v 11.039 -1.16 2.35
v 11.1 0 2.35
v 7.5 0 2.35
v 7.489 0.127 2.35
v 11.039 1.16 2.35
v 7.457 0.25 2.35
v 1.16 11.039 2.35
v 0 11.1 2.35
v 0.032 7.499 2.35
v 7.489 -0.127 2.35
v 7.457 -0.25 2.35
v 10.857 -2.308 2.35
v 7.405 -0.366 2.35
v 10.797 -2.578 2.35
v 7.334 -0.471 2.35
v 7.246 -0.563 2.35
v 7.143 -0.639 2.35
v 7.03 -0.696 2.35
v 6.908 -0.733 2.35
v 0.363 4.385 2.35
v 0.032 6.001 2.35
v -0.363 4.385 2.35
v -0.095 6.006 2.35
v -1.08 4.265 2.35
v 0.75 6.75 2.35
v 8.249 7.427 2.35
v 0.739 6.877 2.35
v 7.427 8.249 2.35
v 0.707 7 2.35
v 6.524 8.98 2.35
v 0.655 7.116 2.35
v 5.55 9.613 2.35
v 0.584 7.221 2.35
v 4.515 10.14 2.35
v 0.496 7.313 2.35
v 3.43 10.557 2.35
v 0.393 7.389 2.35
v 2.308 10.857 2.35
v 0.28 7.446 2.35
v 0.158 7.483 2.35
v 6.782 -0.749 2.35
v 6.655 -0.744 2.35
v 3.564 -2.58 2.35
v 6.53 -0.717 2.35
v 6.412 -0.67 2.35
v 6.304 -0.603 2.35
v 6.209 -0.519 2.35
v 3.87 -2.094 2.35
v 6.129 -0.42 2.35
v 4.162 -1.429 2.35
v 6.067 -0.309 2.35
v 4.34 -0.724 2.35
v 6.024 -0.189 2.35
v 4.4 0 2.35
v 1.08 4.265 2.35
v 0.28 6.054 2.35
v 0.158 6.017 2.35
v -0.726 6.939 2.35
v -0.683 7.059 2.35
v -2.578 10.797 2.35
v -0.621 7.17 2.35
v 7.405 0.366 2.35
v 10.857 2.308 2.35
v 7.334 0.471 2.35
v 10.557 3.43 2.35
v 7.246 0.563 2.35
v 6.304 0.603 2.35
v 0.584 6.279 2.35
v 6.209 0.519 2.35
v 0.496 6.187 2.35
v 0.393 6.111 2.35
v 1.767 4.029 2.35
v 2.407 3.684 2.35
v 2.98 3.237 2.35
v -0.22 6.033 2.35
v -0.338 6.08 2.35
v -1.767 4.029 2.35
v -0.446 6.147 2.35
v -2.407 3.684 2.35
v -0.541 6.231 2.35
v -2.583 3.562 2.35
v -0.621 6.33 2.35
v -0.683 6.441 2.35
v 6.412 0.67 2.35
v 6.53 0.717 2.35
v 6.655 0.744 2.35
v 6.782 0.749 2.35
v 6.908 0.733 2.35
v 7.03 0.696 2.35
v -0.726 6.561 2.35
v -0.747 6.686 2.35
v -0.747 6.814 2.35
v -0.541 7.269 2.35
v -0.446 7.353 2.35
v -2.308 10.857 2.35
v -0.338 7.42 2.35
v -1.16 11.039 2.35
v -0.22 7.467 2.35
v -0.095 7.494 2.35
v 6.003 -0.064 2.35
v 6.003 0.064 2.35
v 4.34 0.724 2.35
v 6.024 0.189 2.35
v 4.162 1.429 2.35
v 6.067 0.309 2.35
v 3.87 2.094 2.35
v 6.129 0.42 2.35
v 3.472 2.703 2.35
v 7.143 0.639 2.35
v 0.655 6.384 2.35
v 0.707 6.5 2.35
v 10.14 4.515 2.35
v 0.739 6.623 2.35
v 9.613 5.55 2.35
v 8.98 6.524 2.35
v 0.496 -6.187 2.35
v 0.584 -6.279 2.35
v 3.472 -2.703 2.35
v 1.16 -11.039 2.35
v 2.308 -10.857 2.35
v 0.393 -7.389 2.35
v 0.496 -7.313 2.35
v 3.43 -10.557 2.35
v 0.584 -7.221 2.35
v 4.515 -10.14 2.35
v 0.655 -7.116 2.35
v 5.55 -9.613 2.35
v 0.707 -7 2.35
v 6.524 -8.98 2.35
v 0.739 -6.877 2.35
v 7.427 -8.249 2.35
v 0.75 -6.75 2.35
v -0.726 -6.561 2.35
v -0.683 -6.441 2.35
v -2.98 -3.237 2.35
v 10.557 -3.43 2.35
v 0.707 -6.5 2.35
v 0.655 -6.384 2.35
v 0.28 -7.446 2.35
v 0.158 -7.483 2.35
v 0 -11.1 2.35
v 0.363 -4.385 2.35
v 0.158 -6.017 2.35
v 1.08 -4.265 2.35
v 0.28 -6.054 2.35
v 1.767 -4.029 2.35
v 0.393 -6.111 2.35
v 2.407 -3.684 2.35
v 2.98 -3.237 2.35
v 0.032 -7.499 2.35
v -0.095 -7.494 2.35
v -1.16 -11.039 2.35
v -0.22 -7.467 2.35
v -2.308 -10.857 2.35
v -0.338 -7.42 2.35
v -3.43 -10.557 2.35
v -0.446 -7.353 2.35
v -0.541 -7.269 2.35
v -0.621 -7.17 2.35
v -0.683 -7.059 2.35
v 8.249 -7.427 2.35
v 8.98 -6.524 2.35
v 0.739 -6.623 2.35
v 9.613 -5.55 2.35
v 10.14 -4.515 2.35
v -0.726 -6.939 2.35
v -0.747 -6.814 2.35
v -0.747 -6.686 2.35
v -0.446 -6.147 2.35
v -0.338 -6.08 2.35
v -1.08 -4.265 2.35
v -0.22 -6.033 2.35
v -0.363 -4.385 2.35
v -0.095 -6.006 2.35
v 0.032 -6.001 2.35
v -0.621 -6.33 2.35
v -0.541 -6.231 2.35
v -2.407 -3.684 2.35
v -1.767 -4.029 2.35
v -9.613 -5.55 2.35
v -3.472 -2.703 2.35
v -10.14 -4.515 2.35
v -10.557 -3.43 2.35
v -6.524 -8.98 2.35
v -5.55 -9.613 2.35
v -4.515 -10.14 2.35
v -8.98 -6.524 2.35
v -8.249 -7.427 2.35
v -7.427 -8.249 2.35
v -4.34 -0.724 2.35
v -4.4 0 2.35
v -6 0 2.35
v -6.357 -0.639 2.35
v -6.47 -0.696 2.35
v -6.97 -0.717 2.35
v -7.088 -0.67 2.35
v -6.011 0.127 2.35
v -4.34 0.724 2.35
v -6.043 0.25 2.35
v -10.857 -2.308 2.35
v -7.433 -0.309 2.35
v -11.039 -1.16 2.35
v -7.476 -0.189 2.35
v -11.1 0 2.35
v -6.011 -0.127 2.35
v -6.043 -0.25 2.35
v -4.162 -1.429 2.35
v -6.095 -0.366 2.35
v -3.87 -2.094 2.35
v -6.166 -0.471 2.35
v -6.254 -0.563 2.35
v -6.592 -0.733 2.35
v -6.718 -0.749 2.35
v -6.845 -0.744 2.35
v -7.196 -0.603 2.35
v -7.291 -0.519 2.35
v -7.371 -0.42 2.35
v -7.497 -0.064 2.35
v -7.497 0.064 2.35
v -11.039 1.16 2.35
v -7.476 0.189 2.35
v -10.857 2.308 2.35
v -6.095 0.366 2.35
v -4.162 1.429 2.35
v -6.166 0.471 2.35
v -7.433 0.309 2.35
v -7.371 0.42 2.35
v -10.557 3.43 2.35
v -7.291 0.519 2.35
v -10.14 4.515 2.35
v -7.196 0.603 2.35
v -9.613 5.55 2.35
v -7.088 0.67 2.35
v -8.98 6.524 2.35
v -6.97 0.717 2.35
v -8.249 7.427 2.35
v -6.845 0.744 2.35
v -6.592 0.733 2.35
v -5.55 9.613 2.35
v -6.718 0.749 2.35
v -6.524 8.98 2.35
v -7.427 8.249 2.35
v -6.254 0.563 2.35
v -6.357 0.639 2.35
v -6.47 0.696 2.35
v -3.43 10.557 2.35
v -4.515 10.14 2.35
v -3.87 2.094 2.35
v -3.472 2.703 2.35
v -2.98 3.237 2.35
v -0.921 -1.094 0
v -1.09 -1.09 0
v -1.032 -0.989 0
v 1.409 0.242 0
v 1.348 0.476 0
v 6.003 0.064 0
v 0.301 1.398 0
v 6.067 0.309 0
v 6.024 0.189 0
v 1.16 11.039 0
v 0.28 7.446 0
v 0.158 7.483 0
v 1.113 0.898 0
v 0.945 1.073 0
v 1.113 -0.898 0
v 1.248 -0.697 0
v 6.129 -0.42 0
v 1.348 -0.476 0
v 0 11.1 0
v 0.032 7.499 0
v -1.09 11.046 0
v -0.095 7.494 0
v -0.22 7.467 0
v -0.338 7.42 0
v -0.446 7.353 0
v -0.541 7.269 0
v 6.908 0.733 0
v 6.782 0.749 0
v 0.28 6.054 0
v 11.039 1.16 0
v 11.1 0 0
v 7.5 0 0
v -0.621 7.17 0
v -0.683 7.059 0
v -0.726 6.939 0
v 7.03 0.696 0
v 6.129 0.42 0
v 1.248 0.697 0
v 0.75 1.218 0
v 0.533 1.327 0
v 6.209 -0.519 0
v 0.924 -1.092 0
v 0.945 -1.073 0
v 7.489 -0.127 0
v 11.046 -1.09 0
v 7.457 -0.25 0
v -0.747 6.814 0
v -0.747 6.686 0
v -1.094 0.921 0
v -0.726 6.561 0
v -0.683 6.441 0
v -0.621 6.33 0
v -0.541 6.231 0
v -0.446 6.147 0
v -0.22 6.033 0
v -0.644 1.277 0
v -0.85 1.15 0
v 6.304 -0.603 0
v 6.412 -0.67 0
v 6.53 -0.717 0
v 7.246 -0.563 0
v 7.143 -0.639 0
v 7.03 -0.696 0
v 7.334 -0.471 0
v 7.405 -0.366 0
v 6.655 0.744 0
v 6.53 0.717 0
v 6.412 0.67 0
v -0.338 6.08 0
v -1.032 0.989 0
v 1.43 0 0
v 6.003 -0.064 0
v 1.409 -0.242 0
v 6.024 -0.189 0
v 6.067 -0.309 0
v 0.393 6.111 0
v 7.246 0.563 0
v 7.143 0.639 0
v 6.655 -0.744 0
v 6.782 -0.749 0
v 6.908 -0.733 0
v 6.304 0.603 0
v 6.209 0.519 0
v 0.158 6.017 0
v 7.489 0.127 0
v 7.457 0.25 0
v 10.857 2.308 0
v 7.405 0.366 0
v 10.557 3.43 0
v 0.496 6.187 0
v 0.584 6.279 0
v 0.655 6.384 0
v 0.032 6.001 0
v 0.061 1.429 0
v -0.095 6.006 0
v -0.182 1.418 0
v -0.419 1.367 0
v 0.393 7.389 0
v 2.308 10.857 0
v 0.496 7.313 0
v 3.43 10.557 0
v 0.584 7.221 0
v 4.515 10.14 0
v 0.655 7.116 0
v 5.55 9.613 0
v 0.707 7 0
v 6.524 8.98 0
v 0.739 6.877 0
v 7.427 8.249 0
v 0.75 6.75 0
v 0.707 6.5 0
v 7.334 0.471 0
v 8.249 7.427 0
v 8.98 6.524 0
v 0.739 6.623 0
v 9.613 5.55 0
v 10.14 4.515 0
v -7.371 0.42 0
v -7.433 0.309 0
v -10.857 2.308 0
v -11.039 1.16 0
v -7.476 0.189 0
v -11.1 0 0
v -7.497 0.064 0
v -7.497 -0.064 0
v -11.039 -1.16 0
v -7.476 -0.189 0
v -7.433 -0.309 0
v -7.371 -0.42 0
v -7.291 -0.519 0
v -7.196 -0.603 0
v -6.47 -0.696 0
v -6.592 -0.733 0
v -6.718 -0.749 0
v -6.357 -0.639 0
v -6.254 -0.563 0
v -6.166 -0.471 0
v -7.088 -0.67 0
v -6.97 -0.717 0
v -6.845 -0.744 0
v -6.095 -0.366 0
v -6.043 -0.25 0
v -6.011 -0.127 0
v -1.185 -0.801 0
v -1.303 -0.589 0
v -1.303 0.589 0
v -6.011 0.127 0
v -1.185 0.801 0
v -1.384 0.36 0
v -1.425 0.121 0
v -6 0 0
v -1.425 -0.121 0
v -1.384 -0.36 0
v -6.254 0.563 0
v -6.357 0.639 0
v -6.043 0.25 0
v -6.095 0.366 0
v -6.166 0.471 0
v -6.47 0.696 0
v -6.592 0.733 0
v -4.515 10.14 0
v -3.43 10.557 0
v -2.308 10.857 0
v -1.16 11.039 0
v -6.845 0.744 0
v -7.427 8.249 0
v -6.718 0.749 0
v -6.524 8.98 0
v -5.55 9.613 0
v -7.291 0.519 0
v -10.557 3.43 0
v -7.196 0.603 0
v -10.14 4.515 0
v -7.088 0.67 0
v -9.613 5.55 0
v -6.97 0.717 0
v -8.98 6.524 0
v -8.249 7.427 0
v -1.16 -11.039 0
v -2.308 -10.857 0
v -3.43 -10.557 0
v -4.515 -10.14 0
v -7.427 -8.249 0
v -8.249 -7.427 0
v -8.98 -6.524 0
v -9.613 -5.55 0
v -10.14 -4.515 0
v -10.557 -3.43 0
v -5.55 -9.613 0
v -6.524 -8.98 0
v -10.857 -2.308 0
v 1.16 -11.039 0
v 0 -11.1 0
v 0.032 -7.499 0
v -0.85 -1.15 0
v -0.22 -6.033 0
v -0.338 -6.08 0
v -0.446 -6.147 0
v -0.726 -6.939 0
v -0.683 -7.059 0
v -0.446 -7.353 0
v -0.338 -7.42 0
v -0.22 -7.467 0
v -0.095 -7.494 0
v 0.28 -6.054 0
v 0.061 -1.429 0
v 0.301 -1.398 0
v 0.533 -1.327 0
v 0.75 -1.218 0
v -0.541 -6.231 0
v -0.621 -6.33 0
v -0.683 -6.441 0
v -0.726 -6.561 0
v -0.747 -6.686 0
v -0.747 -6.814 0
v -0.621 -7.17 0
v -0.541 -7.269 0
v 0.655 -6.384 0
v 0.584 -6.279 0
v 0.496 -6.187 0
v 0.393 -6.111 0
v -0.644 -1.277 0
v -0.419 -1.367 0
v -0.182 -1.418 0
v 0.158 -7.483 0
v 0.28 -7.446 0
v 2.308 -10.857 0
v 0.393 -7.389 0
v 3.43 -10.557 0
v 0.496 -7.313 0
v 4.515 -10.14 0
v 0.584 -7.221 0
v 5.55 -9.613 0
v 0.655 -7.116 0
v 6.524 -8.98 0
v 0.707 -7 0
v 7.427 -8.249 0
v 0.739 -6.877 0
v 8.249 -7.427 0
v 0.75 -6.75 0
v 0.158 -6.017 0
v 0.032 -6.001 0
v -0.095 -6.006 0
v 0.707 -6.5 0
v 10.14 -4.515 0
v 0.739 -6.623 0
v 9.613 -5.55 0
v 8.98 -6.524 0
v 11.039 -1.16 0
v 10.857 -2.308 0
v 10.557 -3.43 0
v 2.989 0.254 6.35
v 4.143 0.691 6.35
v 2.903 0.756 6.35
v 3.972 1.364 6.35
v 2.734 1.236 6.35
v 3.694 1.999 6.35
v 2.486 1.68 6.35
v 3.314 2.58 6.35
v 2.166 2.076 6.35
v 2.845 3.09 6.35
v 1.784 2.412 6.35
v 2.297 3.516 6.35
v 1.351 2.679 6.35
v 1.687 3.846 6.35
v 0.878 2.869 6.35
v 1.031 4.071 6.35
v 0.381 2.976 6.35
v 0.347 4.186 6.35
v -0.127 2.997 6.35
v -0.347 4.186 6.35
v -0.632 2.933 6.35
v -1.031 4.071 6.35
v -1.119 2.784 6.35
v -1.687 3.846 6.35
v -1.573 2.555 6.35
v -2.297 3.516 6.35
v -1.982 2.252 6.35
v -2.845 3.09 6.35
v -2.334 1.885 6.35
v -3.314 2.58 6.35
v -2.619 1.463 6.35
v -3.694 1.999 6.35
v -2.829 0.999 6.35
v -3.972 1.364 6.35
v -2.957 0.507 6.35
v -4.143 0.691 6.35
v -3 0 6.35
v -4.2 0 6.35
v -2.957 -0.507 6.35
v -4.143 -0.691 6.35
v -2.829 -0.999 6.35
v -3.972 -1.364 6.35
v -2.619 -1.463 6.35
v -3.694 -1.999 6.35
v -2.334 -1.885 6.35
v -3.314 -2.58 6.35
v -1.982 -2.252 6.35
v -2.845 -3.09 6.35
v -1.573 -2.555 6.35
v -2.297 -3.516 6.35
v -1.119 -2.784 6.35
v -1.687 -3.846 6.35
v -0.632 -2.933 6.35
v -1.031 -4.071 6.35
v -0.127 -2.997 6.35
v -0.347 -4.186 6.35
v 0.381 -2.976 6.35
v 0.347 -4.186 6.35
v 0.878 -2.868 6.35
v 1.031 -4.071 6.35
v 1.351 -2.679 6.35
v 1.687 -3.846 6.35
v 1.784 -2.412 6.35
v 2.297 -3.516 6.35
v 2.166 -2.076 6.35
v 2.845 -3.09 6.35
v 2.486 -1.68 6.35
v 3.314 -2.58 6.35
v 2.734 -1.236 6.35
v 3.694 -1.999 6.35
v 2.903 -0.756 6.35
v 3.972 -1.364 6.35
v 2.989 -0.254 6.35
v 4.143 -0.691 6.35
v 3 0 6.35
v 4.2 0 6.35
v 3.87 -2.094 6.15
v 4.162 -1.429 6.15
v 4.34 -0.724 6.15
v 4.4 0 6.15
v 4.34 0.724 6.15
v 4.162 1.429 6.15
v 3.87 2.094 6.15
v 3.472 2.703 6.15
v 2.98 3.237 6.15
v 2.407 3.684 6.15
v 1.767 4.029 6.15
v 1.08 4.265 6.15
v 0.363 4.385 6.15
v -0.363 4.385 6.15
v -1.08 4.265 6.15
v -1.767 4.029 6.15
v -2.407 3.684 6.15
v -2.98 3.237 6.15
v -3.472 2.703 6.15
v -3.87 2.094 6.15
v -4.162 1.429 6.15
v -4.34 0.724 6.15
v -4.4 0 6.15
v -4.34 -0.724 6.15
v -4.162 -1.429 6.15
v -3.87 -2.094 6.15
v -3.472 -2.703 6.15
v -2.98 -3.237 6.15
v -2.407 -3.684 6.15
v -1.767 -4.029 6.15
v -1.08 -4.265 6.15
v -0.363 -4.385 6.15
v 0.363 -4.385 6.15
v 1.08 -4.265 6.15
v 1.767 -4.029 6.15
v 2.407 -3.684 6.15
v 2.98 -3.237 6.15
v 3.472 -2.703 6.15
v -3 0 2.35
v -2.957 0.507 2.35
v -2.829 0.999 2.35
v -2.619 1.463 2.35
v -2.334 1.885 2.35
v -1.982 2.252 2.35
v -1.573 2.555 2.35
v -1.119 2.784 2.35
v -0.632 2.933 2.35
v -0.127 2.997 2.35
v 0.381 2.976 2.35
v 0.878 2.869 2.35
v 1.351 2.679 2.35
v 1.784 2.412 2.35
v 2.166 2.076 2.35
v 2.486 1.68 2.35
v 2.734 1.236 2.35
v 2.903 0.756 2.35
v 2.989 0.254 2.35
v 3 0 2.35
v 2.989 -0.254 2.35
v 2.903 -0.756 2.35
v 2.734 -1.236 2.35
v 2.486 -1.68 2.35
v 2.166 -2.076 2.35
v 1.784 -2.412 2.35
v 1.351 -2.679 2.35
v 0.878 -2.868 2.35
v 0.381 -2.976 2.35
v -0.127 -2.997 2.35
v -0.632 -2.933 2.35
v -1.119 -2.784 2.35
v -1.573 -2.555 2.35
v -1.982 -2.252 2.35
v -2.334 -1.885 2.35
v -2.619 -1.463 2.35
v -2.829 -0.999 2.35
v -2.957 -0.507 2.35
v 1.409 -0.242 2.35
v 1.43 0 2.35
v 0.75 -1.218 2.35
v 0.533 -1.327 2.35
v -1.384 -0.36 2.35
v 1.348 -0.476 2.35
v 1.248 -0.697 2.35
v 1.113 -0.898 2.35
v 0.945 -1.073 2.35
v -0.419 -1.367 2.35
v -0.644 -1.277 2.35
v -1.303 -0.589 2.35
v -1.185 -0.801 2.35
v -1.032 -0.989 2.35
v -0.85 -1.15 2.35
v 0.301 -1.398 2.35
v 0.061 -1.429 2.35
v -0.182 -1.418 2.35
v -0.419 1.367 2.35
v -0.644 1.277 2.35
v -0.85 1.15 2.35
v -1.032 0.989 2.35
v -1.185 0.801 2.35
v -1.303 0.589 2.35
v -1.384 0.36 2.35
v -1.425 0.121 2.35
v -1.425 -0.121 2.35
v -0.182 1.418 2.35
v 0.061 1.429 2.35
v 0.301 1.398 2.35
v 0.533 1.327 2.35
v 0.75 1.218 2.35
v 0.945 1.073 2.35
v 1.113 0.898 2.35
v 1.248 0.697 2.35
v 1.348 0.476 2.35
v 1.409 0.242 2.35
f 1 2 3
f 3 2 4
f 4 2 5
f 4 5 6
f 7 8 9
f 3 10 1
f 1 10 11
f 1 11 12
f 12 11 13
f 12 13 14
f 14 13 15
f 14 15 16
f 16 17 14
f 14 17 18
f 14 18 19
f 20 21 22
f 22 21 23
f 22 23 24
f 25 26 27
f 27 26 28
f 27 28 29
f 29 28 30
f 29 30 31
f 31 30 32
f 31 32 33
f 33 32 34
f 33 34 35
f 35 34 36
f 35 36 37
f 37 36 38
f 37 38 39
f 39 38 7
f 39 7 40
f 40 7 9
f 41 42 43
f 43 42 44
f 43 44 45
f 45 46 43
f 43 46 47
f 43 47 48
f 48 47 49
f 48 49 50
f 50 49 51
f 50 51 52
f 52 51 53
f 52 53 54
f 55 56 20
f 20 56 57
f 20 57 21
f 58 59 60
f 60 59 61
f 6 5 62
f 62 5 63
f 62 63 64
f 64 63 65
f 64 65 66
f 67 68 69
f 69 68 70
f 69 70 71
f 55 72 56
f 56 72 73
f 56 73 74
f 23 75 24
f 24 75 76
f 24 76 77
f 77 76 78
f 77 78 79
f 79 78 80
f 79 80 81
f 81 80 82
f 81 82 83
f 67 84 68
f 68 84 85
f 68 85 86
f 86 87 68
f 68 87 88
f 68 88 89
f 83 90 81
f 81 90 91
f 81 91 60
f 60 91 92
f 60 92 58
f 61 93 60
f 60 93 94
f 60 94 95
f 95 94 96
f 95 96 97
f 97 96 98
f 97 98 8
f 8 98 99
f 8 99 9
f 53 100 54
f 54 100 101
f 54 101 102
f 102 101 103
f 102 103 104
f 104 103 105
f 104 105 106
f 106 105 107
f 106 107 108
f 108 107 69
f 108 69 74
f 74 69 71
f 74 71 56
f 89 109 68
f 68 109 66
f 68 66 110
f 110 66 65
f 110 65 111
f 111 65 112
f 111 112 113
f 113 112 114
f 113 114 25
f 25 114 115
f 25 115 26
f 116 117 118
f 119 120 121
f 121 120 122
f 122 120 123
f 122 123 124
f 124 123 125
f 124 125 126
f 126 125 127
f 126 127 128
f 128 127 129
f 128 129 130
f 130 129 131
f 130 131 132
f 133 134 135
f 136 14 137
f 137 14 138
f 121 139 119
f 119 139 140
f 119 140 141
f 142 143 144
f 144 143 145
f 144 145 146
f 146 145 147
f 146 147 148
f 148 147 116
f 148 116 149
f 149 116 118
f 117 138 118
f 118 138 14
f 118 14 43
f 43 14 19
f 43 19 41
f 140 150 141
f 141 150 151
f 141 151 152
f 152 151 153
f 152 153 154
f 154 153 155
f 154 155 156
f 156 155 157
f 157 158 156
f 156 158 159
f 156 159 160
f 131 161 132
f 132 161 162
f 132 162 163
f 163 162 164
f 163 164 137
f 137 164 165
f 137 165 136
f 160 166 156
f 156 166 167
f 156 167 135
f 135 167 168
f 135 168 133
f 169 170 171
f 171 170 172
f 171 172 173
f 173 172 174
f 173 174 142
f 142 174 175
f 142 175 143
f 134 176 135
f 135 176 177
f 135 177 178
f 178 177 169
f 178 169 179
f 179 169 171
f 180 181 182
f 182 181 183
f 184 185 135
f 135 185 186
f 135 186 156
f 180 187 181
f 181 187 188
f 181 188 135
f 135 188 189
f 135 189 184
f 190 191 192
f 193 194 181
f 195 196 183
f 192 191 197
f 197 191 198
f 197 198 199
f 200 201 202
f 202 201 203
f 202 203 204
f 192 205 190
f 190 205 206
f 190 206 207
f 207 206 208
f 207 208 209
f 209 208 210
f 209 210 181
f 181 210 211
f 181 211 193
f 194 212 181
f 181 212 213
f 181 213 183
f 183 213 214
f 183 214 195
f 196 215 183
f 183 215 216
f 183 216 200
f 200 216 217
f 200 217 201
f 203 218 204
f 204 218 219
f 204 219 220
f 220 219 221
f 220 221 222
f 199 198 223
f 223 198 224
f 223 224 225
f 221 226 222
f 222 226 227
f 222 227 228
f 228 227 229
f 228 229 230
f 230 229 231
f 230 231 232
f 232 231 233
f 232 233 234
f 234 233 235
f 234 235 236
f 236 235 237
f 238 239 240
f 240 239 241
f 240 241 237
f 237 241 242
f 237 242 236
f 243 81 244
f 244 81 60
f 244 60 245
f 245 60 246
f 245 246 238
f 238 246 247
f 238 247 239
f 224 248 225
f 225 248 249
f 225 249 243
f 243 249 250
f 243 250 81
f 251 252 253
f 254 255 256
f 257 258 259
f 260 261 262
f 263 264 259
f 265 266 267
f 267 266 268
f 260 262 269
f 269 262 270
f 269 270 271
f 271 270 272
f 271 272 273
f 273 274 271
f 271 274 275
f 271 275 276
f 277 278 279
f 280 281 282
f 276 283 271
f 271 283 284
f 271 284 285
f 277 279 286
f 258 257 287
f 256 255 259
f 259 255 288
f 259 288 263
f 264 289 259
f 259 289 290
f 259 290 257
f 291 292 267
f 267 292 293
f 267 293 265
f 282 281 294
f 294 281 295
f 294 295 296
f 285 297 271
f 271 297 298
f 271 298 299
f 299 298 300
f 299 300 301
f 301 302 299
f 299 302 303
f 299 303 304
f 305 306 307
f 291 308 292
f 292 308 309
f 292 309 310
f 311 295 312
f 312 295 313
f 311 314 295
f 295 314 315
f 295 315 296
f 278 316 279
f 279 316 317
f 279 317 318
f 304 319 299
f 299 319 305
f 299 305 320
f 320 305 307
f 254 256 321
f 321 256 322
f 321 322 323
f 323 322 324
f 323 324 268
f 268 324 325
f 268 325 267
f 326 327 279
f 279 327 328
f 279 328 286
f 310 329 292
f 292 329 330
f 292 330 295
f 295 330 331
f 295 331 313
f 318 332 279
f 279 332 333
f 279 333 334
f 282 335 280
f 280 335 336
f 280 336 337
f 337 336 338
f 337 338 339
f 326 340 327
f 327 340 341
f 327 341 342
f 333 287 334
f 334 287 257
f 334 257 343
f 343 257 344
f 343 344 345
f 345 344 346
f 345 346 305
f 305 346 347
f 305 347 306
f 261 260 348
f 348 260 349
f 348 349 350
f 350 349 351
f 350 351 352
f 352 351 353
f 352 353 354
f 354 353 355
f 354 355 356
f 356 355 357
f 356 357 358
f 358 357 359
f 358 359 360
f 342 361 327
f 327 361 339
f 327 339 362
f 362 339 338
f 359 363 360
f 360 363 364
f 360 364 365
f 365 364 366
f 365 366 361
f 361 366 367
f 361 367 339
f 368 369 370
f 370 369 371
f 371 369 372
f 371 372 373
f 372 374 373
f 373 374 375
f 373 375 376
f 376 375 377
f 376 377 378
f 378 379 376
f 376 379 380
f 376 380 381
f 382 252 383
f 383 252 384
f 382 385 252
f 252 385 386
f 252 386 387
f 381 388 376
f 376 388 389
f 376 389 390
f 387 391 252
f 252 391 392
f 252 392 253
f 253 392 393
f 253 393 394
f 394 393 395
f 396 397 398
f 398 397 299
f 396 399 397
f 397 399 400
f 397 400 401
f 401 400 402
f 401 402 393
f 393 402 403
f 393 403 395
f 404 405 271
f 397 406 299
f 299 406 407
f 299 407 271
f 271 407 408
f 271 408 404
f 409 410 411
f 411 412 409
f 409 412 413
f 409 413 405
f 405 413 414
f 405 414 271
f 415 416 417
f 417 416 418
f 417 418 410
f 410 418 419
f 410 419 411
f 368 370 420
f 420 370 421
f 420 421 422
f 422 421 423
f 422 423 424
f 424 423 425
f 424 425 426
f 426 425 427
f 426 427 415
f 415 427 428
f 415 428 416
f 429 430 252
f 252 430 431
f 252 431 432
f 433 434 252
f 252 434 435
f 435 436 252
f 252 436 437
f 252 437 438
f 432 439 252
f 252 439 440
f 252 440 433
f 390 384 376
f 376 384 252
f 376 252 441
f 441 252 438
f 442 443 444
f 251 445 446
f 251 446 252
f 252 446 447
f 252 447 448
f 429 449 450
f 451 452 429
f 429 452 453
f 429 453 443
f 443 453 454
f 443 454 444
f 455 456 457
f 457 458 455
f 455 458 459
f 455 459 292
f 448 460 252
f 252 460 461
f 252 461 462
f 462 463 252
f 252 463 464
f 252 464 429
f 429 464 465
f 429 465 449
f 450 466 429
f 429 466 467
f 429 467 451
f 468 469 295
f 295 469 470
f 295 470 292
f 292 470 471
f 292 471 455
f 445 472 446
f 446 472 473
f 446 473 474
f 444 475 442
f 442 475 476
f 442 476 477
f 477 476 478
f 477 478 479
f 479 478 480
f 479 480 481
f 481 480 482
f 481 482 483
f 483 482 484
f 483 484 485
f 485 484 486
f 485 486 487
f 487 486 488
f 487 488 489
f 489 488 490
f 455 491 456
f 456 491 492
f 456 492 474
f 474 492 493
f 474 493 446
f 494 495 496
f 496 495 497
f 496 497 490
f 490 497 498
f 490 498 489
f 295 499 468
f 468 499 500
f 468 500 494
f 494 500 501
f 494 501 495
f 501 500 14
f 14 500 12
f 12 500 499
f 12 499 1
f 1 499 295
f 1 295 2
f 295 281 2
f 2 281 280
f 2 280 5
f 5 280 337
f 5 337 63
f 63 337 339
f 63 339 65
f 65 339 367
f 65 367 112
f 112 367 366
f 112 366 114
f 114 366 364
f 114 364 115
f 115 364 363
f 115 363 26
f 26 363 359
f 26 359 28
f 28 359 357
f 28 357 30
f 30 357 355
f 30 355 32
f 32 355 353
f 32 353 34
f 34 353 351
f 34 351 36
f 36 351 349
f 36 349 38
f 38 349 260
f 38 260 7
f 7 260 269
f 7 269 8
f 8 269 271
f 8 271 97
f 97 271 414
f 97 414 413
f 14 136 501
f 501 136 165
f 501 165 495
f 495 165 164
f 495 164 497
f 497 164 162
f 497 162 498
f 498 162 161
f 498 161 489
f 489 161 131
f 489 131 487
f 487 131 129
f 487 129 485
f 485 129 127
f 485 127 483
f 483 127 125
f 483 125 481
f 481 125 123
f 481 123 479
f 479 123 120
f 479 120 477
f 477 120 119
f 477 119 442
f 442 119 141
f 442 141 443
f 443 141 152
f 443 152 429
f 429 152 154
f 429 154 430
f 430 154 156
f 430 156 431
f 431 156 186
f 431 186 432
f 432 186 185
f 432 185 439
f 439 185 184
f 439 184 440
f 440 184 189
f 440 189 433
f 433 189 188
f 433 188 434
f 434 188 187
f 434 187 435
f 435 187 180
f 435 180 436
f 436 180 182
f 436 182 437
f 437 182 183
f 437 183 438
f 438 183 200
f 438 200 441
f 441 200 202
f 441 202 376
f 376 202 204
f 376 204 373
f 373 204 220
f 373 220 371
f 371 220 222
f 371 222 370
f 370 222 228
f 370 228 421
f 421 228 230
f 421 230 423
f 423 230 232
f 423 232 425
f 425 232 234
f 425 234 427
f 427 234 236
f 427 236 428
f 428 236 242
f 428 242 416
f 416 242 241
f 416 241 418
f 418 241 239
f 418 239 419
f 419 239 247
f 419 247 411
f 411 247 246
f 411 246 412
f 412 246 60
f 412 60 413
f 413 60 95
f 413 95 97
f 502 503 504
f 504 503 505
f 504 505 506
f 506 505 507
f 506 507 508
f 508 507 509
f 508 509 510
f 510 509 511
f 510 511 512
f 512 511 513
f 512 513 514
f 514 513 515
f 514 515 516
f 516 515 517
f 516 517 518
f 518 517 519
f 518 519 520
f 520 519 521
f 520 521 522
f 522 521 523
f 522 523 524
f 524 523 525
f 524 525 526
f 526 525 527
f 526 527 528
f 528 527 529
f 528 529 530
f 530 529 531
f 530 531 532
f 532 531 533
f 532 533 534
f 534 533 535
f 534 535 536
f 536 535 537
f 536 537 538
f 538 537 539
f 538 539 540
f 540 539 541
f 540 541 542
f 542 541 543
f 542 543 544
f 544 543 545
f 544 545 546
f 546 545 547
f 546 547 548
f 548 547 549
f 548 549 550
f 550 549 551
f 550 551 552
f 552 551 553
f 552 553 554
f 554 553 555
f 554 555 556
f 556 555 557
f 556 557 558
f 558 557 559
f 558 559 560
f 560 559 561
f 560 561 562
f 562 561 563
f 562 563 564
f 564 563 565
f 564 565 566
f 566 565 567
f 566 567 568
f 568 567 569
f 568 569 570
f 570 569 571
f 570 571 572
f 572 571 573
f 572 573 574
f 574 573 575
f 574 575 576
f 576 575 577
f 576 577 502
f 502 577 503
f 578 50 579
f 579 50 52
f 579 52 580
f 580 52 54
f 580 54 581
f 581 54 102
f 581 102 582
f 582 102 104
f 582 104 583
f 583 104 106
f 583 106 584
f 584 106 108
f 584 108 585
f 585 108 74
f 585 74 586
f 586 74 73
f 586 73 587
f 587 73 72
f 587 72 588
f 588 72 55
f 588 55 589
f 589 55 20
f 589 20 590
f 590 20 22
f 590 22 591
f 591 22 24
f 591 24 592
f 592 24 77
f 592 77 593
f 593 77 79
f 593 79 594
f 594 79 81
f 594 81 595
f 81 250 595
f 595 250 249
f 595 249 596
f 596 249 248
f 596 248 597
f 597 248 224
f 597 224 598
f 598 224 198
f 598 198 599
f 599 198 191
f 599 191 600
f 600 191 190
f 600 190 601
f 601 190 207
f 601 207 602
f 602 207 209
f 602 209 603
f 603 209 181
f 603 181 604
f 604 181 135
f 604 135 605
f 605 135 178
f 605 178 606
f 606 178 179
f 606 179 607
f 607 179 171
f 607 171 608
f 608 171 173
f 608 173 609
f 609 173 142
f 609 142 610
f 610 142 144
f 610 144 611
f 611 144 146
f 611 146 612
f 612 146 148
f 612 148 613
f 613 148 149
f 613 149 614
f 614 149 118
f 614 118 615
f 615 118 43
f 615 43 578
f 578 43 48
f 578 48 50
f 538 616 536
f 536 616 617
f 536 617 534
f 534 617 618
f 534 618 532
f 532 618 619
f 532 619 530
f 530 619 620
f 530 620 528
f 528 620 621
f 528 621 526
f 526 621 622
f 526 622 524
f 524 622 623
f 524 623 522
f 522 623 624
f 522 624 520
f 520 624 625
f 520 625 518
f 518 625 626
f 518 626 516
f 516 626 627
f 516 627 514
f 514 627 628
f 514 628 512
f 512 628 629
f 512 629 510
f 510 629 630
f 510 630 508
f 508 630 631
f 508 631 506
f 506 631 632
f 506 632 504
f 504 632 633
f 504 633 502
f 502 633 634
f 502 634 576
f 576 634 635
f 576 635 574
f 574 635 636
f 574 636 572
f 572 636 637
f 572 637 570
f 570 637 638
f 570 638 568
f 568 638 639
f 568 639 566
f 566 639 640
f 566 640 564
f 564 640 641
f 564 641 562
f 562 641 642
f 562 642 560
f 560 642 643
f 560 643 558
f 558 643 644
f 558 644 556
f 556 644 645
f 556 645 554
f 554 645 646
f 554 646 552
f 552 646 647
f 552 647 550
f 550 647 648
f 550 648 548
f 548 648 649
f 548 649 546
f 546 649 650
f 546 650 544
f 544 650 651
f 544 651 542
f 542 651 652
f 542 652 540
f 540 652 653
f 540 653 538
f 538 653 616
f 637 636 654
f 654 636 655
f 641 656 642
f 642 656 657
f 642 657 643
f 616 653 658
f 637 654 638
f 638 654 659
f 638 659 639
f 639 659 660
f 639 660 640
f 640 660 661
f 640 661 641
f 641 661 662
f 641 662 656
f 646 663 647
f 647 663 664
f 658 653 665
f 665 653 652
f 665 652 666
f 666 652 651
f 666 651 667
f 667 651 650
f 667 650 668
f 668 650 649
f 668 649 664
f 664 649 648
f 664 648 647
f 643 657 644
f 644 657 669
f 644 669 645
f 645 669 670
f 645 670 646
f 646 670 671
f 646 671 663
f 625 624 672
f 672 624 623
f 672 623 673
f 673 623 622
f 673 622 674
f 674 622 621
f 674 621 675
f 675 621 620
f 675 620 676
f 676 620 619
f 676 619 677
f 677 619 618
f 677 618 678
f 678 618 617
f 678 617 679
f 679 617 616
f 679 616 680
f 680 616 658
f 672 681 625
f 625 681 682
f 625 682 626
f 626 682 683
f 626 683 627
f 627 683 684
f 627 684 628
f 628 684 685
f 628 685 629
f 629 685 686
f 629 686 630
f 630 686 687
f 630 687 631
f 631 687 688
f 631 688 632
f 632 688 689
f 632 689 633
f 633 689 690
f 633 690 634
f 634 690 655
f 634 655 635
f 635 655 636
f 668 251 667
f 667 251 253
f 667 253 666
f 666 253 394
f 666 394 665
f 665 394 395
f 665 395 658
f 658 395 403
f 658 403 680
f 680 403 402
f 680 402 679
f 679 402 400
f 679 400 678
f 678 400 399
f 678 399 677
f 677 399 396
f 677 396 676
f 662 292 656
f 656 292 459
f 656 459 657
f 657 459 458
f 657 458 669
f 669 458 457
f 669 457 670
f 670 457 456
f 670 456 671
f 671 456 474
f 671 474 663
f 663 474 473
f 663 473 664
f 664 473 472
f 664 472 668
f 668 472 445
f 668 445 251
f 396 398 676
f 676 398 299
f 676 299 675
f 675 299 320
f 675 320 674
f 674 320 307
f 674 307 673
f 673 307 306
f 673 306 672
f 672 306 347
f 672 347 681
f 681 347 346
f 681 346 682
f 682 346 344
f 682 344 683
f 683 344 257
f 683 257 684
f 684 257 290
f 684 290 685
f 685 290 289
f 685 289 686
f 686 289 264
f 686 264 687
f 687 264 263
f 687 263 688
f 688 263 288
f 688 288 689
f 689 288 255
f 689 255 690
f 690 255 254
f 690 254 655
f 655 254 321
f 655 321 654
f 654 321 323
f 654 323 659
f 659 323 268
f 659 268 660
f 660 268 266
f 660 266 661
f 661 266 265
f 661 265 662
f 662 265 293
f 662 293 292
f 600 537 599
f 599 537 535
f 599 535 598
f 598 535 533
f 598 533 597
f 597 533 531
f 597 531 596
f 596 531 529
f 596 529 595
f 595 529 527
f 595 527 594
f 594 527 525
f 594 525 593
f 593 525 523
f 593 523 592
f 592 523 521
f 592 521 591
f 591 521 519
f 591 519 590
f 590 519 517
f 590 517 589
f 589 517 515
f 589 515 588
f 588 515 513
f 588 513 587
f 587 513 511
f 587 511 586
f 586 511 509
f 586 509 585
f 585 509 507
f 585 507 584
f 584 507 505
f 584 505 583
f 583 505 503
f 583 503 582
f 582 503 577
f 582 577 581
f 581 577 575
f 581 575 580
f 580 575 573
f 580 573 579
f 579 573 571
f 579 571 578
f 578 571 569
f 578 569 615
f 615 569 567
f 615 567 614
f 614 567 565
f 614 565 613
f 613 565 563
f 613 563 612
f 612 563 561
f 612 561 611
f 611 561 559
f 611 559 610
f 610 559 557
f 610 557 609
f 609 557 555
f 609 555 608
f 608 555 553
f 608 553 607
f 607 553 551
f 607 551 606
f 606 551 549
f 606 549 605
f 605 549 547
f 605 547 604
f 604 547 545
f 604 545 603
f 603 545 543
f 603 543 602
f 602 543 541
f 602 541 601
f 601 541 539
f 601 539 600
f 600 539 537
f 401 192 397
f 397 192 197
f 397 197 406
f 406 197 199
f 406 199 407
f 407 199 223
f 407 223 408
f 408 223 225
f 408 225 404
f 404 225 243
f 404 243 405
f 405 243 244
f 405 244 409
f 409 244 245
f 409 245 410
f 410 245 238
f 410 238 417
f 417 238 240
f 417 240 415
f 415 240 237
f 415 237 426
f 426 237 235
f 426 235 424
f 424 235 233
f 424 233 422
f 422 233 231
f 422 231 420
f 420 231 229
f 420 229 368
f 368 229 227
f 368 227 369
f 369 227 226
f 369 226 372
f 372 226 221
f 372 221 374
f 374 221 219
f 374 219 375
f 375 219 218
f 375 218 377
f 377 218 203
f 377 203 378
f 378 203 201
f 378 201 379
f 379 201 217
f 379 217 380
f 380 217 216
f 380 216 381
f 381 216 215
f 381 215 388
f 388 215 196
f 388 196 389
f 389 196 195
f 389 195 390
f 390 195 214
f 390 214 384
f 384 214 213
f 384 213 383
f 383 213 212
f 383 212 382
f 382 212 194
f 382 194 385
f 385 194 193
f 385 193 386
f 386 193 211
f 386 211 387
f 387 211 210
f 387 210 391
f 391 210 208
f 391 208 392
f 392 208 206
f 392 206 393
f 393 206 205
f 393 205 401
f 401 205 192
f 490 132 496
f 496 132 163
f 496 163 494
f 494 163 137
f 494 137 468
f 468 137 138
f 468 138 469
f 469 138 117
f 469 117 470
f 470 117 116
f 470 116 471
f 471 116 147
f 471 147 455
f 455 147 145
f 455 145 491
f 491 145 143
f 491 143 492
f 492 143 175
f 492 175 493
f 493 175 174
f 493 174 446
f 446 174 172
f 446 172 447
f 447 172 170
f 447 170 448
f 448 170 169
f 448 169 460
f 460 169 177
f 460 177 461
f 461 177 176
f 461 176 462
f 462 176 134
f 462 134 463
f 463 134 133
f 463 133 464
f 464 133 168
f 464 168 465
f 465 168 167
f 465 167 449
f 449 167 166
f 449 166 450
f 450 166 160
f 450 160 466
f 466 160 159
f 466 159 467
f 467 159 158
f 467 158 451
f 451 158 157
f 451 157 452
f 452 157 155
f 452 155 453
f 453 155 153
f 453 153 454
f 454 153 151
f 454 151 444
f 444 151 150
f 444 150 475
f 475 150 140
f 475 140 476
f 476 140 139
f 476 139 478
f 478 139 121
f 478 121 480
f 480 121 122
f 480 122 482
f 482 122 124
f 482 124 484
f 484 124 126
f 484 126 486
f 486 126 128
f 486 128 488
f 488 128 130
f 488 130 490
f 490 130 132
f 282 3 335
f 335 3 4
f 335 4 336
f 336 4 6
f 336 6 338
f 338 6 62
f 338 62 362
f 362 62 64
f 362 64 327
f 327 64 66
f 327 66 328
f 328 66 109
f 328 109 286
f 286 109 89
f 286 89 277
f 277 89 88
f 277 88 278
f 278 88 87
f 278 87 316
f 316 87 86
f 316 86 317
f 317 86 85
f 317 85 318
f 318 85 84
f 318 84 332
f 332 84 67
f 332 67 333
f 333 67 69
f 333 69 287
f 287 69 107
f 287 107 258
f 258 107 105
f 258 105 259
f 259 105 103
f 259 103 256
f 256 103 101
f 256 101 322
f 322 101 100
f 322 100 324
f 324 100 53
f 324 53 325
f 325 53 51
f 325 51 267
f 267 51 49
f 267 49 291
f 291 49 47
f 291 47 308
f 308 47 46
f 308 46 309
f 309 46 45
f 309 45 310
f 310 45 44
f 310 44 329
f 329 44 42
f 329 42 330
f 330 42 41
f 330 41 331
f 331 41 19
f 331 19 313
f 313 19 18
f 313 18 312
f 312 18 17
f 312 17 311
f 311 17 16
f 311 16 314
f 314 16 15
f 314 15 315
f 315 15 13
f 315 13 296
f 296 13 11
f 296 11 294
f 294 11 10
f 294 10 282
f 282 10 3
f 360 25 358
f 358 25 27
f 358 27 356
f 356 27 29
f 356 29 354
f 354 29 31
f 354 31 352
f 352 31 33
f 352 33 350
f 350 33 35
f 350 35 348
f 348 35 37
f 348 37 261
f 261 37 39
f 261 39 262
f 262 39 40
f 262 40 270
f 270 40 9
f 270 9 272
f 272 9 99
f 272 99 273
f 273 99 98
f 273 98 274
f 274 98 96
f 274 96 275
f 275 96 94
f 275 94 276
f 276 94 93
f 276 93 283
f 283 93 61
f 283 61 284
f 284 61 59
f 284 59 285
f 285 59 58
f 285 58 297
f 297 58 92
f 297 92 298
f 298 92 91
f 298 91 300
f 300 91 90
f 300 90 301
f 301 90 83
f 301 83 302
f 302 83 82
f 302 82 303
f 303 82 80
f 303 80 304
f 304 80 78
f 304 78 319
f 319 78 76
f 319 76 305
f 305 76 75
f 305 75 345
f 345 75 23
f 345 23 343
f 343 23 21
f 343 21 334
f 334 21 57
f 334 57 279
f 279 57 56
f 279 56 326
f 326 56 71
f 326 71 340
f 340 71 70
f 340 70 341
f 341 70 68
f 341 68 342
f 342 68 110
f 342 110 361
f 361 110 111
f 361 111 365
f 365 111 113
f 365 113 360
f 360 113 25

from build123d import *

# Parameters (mm, degrees)
ESQUISSE1_R             = 11.1
ESQUISSE1_R_2           = 1.5
BOSS_EXTRU_1_DEPTH      = 2.35
ESQUISSE2_R             = 4.4
ESQUISSE2_R_2           = 3
BOSS_EXTRU_2_DEPTH      = 4
ESQUISSE3_R             = 1.43
ENL_V_MAT_EXTRU_1_DEPTH = 4
CHANFREIN2_SIZE         = 0.2
ESQUISSE4_R             = 1.5
ENL_V_MAT_EXTRU_2_DEPTH = 4
BOSS_EXTRU_3_START      = -2.35
ESQUISSE5_R             = 1.5
ESQUISSE5_R_2           = 0.75
BOSS_EXTRU_3_DEPTH      = 2.35


with BuildPart() as part:
    # Esquisse1 → Boss.-Extru.1 (new body)
    with BuildSketch(Plane.XY):
        Circle(ESQUISSE1_R)
        with Locations((0, 6.75)):
            Circle(ESQUISSE1_R_2, mode=Mode.SUBTRACT)
        with Locations((0, -6.75)):
            Circle(ESQUISSE1_R_2, mode=Mode.SUBTRACT)
    extrude(amount=BOSS_EXTRU_1_DEPTH)

    # Esquisse2 → Boss.-Extru.2 (add)
    with BuildSketch(Plane.XY.offset(2.35)):
        Circle(ESQUISSE2_R)
        Circle(ESQUISSE2_R_2, mode=Mode.SUBTRACT)
    extrude(amount=BOSS_EXTRU_2_DEPTH)

    # Esquisse3 → Enlèv. mat.-Extru.1 (cut)
    with BuildSketch(Plane.XY.offset(2.35)):
        Circle(ESQUISSE3_R)
    extrude(amount=-ENL_V_MAT_EXTRU_1_DEPTH, mode=Mode.SUBTRACT)

    # Chanfrein2
    chanfrein2_edges = [part.edges().sort_by_distance(p)[0] for p in [
        (-4.4, 0, 6.35),
    ]]
    chamfer(chanfrein2_edges, length=CHANFREIN2_SIZE)

    # Esquisse4 → Enlèv. mat.-Extru.2 (cut)
    with BuildSketch(Plane(origin=(0, 0, 0), x_dir=(-1, 0, 0), z_dir=(0, 0, -1))):
        with Locations((-6.75, 0)):
            Circle(ESQUISSE4_R)
        with Locations((6.75, 0)):
            Circle(ESQUISSE4_R)
    extrude(amount=-ENL_V_MAT_EXTRU_2_DEPTH, mode=Mode.SUBTRACT)

    # Esquisse5 → Boss.-Extru.3 (add)
    # profile 1 of 4: a face of its own
    with BuildSketch(Plane.XY.offset(2.35).offset(BOSS_EXTRU_3_START)):
        with Locations((-6.75, 0)):
            Circle(ESQUISSE5_R)
        with Locations((-6.75, 0)):
            Circle(ESQUISSE5_R_2, mode=Mode.SUBTRACT)
    # profile 2 of 4: a face of its own
    with BuildSketch(Plane.XY.offset(2.35).offset(BOSS_EXTRU_3_START)):
        with Locations((0, -6.75)):
            Circle(ESQUISSE5_R)
        with Locations((0, -6.75)):
            Circle(ESQUISSE5_R_2, mode=Mode.SUBTRACT)
    # profile 3 of 4: a face of its own
    with BuildSketch(Plane.XY.offset(2.35).offset(BOSS_EXTRU_3_START)):
        with Locations((6.75, 0)):
            Circle(ESQUISSE5_R)
        with Locations((6.75, 0)):
            Circle(ESQUISSE5_R_2, mode=Mode.SUBTRACT)
    # profile 4 of 4: a face of its own
    with BuildSketch(Plane.XY.offset(2.35).offset(BOSS_EXTRU_3_START)):
        with Locations((0, 6.75)):
            Circle(ESQUISSE5_R)
        with Locations((0, 6.75)):
            Circle(ESQUISSE5_R_2, mode=Mode.SUBTRACT)
    extrude(amount=BOSS_EXTRU_3_DEPTH)


solid = part.part
